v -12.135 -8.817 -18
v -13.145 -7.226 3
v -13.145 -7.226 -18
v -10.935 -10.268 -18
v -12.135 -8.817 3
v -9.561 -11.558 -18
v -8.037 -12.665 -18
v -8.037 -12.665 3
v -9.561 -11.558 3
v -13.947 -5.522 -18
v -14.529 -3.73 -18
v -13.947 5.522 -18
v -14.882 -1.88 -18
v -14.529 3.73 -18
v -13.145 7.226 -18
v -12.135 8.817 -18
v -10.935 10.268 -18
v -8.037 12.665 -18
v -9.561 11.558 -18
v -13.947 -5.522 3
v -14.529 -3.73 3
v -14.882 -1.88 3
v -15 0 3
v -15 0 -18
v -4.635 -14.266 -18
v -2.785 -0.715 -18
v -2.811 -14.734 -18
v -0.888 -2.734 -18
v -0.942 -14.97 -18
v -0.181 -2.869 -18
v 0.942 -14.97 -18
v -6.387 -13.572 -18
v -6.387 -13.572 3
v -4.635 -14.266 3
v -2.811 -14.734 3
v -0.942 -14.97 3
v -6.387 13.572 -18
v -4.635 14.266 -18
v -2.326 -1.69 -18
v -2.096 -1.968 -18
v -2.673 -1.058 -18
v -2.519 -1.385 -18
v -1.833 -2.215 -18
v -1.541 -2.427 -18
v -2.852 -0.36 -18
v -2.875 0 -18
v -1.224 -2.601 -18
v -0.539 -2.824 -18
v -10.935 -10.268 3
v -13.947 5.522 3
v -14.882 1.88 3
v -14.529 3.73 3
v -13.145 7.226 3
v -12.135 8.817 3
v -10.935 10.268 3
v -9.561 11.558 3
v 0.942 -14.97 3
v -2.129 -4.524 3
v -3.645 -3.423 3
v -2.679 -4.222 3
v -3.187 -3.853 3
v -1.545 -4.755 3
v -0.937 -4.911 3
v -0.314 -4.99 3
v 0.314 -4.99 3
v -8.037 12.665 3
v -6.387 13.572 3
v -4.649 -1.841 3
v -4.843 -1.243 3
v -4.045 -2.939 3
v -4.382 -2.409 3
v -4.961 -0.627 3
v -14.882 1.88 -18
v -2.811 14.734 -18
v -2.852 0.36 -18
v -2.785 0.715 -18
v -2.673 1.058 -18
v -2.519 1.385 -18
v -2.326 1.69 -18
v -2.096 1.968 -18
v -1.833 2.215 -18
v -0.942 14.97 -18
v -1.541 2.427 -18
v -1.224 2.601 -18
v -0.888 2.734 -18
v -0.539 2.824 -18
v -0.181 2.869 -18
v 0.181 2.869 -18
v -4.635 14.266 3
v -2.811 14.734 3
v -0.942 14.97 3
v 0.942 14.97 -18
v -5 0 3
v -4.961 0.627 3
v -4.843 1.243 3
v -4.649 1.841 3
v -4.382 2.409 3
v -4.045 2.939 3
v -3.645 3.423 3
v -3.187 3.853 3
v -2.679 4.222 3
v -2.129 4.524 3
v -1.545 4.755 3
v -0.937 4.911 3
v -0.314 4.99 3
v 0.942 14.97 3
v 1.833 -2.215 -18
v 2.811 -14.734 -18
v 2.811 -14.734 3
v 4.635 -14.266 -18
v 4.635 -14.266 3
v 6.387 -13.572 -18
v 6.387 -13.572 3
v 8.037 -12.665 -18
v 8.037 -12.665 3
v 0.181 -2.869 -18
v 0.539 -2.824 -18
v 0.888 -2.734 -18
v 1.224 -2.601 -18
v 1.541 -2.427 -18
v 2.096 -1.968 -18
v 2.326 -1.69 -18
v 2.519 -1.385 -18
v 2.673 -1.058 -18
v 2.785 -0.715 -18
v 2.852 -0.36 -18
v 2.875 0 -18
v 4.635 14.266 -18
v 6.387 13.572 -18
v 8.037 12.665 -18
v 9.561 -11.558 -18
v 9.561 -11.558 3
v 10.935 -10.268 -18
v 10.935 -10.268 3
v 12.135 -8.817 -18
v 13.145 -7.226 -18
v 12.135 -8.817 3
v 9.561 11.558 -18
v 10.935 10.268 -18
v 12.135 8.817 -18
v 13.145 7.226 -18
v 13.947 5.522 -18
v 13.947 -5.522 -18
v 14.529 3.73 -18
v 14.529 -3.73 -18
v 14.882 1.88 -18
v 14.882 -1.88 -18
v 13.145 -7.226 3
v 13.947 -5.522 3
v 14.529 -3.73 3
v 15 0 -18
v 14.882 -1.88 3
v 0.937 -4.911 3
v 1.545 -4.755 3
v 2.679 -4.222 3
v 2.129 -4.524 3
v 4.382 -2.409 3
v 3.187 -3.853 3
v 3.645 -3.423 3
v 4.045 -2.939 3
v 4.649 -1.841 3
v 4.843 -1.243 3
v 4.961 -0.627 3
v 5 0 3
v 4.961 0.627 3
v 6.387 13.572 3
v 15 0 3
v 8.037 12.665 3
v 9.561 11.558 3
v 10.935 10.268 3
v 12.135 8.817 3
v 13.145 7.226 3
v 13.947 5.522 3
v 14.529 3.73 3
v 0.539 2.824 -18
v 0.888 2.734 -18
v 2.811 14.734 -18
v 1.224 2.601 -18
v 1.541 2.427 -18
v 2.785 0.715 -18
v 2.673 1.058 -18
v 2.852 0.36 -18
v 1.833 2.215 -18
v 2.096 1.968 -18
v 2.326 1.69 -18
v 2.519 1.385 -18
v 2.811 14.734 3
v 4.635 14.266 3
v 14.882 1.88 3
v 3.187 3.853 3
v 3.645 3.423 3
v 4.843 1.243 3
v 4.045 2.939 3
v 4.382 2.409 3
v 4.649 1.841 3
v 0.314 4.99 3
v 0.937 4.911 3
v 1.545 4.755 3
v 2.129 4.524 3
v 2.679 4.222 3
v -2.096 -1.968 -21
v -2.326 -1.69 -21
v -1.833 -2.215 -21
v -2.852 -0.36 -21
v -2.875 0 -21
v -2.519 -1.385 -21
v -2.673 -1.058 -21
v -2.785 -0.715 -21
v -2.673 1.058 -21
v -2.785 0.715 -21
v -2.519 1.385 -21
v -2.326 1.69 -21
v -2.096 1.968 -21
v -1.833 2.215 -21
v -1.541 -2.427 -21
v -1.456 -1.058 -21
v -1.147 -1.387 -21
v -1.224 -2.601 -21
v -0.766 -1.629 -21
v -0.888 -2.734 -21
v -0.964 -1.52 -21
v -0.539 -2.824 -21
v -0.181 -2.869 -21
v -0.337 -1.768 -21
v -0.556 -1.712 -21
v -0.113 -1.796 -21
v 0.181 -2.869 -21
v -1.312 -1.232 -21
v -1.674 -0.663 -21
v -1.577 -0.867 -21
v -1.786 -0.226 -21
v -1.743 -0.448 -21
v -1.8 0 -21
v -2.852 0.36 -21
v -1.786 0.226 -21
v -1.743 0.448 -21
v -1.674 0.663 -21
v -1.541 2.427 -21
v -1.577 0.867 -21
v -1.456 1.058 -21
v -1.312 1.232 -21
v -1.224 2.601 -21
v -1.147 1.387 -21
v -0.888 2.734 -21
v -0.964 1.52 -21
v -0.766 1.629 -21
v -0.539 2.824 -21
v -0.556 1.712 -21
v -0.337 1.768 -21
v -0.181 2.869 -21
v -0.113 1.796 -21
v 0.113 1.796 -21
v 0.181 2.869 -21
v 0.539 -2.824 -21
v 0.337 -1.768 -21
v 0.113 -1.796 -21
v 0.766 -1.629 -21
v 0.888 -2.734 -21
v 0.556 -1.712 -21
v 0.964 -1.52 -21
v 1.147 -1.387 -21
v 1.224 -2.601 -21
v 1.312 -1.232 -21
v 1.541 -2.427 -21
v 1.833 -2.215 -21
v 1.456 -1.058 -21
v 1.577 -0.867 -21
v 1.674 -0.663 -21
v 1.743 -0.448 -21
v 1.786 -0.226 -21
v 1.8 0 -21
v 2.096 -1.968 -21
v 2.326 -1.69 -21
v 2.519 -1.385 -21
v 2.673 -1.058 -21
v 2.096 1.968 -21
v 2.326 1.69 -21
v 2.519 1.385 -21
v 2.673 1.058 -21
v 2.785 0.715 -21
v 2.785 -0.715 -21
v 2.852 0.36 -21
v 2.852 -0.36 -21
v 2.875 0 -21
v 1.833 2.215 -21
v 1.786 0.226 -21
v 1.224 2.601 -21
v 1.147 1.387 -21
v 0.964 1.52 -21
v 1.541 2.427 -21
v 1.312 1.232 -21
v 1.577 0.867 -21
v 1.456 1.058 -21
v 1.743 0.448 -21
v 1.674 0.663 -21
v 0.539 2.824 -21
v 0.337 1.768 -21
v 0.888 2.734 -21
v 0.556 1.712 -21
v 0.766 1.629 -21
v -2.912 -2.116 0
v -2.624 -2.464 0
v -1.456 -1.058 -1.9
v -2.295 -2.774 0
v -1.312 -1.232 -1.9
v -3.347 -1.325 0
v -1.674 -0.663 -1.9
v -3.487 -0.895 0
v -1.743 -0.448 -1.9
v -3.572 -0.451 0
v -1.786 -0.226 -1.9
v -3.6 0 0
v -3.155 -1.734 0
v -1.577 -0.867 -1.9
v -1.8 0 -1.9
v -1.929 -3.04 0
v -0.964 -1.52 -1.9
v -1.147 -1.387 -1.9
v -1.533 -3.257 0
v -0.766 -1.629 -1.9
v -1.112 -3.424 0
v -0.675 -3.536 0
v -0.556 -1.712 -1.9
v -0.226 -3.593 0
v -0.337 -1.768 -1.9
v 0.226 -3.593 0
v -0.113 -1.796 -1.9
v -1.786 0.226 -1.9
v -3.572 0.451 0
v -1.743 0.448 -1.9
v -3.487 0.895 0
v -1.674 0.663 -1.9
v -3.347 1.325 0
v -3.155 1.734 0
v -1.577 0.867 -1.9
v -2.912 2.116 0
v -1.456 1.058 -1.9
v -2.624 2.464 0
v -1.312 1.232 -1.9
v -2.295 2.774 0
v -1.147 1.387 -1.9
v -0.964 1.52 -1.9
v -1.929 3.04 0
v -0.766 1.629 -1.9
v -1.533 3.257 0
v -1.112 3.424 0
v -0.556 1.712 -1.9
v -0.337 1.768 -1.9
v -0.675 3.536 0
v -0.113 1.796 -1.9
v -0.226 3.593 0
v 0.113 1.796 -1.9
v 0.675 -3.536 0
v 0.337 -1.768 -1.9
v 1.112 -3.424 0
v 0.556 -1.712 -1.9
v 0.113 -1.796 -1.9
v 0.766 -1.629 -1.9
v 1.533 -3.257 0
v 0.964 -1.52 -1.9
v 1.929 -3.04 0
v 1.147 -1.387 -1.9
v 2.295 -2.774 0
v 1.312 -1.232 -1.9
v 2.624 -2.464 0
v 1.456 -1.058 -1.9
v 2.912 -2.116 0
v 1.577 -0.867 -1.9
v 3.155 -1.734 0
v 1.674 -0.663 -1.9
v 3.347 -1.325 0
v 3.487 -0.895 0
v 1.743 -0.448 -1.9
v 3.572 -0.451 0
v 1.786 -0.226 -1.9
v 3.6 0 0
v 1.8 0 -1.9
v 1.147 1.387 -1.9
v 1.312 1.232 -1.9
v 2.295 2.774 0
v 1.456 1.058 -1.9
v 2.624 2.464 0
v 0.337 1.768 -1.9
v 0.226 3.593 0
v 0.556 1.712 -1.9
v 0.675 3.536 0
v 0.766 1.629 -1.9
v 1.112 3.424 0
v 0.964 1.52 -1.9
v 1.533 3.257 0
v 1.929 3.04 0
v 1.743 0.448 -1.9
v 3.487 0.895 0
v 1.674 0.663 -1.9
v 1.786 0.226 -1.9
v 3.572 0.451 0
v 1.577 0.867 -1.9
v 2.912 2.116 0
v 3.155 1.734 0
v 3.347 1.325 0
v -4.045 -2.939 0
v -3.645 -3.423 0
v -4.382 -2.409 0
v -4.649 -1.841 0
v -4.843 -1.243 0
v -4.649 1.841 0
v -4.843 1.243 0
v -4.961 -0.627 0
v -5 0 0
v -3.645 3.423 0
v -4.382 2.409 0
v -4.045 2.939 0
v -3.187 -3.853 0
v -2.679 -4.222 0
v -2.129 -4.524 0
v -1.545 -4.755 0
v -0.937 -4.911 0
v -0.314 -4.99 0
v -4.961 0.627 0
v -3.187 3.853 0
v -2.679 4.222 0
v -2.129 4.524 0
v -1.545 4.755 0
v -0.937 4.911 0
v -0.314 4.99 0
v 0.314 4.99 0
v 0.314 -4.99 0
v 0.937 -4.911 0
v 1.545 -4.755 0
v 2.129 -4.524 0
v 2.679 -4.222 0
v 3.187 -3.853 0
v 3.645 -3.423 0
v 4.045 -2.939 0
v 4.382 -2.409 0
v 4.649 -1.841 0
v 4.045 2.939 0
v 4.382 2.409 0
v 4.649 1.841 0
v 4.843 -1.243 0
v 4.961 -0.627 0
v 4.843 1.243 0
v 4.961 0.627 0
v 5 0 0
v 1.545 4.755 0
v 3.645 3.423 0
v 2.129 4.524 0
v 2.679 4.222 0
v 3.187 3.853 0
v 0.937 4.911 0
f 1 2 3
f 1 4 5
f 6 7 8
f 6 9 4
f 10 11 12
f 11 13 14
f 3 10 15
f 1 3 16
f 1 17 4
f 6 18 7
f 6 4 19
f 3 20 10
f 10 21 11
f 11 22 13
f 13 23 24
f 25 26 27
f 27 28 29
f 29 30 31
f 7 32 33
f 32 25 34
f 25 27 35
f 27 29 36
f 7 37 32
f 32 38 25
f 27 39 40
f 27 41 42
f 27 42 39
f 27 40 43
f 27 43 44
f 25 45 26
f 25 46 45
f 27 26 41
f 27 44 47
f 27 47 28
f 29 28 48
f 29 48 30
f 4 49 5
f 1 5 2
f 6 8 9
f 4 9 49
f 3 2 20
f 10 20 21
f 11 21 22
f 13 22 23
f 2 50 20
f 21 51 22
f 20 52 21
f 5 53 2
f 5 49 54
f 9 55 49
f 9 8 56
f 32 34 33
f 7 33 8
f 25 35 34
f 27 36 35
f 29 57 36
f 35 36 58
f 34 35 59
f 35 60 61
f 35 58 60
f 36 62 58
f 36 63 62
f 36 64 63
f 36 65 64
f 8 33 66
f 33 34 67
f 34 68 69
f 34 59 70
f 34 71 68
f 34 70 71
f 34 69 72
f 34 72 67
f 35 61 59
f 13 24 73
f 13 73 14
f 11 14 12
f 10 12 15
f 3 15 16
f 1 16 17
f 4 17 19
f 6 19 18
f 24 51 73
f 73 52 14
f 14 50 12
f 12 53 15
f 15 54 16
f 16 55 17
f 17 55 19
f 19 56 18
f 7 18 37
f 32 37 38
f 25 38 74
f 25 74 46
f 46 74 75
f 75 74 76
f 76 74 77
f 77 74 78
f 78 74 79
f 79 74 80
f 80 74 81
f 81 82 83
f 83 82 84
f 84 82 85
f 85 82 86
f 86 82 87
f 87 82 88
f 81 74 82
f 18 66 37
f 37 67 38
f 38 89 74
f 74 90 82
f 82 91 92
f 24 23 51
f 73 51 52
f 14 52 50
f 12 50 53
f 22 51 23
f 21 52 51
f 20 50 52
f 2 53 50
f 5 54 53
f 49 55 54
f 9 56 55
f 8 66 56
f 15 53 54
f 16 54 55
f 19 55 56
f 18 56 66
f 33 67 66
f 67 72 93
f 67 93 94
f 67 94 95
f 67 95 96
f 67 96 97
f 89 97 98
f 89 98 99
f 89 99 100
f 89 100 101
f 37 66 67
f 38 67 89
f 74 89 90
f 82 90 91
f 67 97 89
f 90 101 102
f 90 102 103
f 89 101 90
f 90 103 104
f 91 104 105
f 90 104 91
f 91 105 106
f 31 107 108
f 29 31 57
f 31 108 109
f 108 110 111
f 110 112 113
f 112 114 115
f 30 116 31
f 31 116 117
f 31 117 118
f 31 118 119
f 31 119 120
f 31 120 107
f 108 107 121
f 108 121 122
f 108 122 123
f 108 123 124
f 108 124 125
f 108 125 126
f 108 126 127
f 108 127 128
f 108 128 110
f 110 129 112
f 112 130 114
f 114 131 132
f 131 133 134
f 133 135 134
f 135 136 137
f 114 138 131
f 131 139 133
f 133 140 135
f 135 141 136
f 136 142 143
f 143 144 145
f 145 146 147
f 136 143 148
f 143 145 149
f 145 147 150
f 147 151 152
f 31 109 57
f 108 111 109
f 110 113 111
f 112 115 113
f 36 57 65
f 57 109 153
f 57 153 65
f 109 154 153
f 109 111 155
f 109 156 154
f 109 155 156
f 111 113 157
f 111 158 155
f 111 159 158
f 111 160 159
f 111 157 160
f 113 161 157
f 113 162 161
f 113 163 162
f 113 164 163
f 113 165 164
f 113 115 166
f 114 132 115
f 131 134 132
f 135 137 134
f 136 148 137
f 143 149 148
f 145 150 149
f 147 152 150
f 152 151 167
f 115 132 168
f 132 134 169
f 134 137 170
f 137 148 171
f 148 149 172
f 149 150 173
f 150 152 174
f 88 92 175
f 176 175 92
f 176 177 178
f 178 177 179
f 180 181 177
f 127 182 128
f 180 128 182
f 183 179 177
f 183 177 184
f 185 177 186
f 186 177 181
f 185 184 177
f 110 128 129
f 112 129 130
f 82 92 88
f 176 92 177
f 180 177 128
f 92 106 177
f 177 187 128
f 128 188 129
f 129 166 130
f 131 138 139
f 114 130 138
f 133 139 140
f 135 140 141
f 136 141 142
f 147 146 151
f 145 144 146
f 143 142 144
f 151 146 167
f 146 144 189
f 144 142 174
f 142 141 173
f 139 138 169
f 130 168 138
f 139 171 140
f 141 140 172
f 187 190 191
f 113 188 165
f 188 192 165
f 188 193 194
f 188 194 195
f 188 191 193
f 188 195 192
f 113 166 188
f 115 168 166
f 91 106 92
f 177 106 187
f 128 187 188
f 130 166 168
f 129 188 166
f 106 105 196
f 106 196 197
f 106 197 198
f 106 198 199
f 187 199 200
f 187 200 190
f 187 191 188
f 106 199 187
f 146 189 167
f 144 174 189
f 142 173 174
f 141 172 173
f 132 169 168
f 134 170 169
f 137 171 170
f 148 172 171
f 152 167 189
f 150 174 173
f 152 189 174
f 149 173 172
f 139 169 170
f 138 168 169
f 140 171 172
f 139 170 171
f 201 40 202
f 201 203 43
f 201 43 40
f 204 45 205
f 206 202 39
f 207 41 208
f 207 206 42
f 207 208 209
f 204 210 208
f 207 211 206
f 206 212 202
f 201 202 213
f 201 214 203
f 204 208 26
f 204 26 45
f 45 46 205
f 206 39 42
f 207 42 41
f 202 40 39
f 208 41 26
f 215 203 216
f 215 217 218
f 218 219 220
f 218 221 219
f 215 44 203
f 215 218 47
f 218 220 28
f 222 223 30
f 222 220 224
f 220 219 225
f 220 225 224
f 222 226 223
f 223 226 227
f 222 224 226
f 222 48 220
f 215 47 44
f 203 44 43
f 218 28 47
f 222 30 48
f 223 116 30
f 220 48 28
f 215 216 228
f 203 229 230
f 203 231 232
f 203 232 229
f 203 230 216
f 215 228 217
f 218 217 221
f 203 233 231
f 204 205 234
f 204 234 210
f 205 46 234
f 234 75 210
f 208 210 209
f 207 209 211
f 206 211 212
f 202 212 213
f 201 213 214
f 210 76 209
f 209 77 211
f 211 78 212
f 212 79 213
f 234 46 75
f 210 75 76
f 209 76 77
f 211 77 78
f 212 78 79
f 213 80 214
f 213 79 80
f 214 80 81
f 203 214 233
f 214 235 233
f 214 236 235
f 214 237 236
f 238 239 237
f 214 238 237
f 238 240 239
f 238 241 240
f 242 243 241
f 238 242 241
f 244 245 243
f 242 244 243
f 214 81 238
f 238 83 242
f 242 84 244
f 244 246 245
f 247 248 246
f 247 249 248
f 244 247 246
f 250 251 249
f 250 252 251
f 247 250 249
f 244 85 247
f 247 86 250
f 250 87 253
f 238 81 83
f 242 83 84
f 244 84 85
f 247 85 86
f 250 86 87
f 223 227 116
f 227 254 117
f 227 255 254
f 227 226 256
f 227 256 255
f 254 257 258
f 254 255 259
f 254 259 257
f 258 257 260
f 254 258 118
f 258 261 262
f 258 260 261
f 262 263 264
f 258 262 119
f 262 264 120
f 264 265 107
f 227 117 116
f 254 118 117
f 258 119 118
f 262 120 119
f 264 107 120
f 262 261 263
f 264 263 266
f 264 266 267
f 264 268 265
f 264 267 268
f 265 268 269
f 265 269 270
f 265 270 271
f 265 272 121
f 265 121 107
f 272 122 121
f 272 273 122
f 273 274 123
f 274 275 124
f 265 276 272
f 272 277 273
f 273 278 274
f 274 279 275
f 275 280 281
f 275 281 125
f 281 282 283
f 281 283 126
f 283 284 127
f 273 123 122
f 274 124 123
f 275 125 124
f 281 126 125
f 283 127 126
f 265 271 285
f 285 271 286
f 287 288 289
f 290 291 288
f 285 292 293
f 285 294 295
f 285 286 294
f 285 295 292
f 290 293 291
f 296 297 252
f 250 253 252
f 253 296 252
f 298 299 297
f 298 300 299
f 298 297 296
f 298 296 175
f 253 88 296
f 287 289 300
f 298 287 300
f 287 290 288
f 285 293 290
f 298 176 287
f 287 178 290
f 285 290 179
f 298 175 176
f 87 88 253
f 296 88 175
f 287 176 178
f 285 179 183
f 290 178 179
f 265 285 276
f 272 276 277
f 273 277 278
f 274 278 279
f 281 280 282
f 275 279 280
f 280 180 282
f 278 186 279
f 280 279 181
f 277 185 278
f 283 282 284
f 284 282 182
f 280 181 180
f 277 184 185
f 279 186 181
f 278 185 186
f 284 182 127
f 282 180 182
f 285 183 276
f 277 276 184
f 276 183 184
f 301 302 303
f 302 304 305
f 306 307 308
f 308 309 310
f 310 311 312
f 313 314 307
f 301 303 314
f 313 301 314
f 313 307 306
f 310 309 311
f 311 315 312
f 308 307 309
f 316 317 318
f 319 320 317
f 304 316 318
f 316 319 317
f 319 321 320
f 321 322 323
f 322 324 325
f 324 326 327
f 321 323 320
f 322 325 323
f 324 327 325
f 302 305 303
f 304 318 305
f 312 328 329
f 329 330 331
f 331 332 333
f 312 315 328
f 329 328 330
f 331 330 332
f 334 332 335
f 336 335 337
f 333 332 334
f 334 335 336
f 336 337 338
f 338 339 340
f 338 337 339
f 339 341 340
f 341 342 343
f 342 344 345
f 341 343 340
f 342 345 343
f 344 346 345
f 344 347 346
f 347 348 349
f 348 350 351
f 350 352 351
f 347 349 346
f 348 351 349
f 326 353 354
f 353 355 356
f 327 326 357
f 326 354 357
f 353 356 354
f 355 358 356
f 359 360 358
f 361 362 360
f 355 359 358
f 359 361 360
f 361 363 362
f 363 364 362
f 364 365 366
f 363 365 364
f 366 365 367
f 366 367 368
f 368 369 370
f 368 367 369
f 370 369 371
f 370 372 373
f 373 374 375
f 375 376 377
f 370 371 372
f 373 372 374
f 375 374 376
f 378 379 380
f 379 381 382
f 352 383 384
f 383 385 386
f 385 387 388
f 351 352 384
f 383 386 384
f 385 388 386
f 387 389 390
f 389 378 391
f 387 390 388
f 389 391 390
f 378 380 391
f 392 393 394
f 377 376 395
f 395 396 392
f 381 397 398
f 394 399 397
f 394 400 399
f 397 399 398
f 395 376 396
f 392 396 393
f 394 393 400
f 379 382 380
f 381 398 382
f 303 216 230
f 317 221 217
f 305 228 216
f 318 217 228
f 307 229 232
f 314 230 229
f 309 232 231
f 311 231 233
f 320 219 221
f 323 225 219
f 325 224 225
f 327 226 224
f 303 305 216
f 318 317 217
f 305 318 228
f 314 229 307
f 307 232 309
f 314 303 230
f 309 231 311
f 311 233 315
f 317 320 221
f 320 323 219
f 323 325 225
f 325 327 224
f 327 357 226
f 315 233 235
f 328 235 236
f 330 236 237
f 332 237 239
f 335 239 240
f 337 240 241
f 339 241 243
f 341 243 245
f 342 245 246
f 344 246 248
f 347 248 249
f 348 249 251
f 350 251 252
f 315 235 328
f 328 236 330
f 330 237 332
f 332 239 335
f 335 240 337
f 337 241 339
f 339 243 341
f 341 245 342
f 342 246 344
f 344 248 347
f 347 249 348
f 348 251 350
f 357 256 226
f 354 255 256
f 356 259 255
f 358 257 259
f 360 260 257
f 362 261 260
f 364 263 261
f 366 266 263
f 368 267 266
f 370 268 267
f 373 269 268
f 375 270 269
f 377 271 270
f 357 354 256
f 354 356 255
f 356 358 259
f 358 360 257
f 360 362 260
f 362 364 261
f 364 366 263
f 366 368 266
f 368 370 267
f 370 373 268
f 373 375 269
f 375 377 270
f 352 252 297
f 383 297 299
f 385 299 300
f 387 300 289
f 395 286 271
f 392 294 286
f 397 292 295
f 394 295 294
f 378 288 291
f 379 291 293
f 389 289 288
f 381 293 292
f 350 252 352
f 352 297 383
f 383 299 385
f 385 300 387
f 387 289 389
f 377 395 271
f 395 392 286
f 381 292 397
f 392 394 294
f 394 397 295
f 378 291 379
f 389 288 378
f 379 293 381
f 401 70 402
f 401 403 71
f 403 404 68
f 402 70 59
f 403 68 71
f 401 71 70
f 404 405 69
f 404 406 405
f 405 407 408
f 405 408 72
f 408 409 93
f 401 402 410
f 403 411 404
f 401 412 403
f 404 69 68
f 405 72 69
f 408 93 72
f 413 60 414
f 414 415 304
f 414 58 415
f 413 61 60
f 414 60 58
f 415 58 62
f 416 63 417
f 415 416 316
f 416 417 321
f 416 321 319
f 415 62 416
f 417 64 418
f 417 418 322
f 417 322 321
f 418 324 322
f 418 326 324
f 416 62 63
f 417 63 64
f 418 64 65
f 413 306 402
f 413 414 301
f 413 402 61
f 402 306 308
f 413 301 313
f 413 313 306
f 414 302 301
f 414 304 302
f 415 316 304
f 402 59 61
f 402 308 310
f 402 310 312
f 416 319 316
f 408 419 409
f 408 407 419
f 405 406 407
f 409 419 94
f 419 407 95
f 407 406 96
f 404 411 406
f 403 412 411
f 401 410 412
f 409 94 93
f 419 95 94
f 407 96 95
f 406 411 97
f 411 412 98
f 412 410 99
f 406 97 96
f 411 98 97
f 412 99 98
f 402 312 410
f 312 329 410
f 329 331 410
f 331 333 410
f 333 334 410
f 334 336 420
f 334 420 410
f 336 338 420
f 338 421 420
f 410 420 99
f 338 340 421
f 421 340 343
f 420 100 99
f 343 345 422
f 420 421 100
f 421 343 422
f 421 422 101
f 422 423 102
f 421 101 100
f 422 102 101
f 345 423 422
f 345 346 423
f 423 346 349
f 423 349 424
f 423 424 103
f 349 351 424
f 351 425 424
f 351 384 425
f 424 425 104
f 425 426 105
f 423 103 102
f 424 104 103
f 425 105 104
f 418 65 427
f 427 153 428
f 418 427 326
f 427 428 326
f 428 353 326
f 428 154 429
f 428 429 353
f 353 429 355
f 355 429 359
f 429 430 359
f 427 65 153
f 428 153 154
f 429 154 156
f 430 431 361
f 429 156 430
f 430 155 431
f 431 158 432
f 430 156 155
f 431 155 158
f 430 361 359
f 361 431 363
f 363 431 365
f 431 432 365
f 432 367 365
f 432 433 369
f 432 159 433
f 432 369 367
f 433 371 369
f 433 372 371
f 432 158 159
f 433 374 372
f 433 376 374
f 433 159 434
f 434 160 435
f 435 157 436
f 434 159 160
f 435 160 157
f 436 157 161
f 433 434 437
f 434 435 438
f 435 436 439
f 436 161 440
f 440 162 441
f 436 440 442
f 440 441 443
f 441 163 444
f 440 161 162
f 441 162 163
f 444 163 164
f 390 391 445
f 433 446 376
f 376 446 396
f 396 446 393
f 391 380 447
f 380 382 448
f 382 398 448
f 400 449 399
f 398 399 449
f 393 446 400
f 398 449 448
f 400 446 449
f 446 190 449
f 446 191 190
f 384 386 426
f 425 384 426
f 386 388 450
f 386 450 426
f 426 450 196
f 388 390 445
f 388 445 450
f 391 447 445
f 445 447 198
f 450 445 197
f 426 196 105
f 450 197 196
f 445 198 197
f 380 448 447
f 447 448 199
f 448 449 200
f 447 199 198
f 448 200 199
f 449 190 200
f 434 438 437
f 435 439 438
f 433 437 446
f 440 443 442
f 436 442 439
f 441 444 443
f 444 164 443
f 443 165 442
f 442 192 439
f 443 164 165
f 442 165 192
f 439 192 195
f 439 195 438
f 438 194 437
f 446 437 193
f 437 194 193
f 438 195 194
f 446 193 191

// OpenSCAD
$fn = 50;


difference() {
	union() {
		translate(v = [0, 0, -18.0000000000]) {
			cylinder(h = 21, r = 15.0000000000);
		}
		#translate(v = [0, 0, -21.0000000000]) {
			cylinder(h = 21, r = 2.8750000000);
		}
	}
	union() {
		translate(v = [0, 0, 0]) {
			rotate(a = [0, 0, 0]) {
				difference() {
					union() {
						translate(v = [0, 0, -21.0000000000]) {
							cylinder(h = 21, r = 1.5000000000);
						}
						translate(v = [0, 0, -1.9000000000]) {
							cylinder(h = 1.9000000000, r1 = 1.8000000000, r2 = 3.6000000000);
						}
						translate(v = [0, 0, -21.0000000000]) {
							cylinder(h = 21, r = 1.8000000000);
						}
						translate(v = [0, 0, -21.0000000000]) {
							cylinder(h = 21, r = 1.5000000000);
						}
					}
					union();
				}
			}
		}
		#cylinder(h = 3, r = 5.0000000000);
	}
}
